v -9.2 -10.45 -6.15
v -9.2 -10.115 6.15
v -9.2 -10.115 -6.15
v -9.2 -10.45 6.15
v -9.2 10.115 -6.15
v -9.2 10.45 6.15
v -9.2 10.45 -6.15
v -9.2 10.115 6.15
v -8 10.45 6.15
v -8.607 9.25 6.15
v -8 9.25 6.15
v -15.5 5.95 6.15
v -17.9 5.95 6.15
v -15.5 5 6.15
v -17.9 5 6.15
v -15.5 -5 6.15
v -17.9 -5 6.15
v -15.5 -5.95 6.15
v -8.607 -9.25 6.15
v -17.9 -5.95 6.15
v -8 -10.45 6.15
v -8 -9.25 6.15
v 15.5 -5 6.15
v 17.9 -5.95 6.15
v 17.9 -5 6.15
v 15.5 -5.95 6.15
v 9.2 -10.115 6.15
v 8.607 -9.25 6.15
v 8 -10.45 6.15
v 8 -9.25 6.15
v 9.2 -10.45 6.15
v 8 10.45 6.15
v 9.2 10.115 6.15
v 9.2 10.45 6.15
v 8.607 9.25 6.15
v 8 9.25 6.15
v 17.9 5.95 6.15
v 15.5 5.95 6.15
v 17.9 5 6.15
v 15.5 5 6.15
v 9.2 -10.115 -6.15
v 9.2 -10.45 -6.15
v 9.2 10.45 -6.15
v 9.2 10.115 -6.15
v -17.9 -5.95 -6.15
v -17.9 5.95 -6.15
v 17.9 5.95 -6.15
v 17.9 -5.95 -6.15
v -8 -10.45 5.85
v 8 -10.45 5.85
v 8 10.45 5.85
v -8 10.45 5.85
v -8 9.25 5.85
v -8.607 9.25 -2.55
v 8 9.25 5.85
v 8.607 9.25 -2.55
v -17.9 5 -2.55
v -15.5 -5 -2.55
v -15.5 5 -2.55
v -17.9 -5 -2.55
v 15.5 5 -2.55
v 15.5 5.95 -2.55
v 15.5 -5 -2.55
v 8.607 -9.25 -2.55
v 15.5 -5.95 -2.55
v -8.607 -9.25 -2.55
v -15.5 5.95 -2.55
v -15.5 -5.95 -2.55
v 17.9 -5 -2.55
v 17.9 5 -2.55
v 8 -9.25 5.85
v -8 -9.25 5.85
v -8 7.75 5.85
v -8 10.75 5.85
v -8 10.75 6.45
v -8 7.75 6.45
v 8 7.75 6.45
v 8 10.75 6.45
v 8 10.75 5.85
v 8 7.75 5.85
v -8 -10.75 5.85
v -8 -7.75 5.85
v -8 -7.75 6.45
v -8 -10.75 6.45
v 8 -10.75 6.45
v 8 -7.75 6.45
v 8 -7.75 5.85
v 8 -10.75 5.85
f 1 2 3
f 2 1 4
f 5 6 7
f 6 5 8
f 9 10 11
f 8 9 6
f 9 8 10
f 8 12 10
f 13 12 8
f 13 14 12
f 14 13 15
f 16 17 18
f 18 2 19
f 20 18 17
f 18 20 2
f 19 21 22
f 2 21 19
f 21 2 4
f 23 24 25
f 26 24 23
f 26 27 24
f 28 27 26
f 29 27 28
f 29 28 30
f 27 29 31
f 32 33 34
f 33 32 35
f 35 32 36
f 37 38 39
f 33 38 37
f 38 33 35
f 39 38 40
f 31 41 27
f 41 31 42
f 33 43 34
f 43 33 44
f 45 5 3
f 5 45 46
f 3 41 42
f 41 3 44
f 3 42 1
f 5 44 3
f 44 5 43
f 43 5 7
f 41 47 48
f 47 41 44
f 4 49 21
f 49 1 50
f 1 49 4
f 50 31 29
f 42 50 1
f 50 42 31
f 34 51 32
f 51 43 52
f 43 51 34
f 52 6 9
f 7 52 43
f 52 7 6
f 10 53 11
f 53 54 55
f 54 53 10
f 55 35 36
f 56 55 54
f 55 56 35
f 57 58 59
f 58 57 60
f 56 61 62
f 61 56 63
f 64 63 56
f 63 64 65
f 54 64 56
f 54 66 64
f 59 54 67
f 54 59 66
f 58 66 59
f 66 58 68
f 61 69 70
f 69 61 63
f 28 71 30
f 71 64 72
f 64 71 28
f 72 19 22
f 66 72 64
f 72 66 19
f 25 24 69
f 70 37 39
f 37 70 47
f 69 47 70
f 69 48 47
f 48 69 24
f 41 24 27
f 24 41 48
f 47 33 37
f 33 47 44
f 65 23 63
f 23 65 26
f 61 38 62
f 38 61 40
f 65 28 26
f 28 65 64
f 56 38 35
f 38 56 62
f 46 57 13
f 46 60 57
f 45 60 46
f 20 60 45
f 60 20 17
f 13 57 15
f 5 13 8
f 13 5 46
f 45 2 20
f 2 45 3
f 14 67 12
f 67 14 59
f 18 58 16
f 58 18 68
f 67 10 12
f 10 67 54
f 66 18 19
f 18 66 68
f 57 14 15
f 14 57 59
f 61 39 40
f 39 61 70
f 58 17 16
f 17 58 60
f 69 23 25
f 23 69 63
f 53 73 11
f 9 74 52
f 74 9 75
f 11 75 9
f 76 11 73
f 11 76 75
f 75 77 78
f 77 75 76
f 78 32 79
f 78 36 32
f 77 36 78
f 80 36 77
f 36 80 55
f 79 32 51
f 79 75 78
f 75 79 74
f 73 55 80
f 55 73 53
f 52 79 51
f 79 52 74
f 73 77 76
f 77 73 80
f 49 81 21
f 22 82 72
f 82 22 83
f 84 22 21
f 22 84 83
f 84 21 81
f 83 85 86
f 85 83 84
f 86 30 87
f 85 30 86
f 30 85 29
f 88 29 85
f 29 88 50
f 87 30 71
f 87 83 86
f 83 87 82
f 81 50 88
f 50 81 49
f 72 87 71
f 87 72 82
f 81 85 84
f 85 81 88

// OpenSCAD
// Gewindeschneiderhalter

ghx = 16.0;
ghy = 18.5;
ghz = 9.9;
w =2.4;

mittelteil = true;
endteil = true;

halter();



module halter() {
    difference() {
        union(){
            if (mittelteil)mittelteil();
            if (endteil)translate([ghx/2,0,0]) endteil();
            if (endteil)rotate([0,0,180]) translate([ghx/2,0,0]) endteil();
        }
        translate([0,0,w])
        cube([100,10,ghz],center=true);
    }
    translate([0,ghy/2,ghz/2+1.2])
    steg();
    translate([0,-ghy/2,ghz/2+1.2])
    steg();
}

module mittelteil() {
    
    difference(){
        cube([ghx+w,ghy+w,ghz+w],center=true);
        translate([0,0,w])
        cube([ghx+2*w,ghy,ghz],center=true);
    }
}

module endteil() {
    difference() {
        ende();
        translate([-w,0,1.5*w])
        ende();
    }
}

module ende() {

    hull(){
        cube([1,ghy+w,ghz+w],center=true);
        translate([7+w,0,0])
        cube([1,9.5+w,ghz+w],center=true);
    }
}

module steg() {
    cube([ghx,3,0.6],center=true);
}
